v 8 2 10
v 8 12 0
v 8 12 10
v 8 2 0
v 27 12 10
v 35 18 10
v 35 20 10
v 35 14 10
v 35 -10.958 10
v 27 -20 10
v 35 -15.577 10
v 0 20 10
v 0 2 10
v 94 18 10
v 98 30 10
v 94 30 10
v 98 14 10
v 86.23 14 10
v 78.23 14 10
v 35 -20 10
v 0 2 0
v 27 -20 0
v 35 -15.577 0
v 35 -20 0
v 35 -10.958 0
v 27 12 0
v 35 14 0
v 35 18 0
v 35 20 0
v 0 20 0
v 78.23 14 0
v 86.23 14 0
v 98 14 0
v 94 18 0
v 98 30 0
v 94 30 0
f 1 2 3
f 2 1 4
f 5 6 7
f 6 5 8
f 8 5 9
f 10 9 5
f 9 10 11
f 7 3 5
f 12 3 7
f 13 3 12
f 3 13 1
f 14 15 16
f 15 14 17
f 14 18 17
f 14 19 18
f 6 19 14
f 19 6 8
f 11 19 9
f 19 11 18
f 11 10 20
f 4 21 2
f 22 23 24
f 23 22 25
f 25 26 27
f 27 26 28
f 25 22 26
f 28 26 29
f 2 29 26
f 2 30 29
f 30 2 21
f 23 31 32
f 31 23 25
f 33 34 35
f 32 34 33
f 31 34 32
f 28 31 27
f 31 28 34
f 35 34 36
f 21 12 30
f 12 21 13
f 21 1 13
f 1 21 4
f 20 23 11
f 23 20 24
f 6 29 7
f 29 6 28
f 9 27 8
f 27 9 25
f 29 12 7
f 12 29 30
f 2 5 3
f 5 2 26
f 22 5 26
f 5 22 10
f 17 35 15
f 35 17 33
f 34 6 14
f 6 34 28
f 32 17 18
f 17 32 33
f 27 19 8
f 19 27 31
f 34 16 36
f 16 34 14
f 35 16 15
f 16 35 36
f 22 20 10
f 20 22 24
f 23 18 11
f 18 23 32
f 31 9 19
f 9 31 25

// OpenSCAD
thick=8;
a1=8;
a2=20;
a3=70;
hh=10;//170;

module main() {
    translate([0,2,0]) cube([thick,thick+a1,hh]);
    translate([0,a2-thick,0]) cube([2*thick+a2-1,thick,hh]);
    #translate([thick+a2-1,0,0]) cube([thick,thick+a1,hh]);
    translate([thick+a2,14,0]) cube([a3,thick/2,hh]);
    translate([3*thick+a3,14,0]) cube([thick/2,thick+a1,hh]);
    #translate([thick+a2-1,-20,0]) cube([thick,thick+a1+20,hh]);
    translate([thick+a2,-15,0]) rotate(-60) cube([thick/2,thick+a1+50,hh]);
}


main();
